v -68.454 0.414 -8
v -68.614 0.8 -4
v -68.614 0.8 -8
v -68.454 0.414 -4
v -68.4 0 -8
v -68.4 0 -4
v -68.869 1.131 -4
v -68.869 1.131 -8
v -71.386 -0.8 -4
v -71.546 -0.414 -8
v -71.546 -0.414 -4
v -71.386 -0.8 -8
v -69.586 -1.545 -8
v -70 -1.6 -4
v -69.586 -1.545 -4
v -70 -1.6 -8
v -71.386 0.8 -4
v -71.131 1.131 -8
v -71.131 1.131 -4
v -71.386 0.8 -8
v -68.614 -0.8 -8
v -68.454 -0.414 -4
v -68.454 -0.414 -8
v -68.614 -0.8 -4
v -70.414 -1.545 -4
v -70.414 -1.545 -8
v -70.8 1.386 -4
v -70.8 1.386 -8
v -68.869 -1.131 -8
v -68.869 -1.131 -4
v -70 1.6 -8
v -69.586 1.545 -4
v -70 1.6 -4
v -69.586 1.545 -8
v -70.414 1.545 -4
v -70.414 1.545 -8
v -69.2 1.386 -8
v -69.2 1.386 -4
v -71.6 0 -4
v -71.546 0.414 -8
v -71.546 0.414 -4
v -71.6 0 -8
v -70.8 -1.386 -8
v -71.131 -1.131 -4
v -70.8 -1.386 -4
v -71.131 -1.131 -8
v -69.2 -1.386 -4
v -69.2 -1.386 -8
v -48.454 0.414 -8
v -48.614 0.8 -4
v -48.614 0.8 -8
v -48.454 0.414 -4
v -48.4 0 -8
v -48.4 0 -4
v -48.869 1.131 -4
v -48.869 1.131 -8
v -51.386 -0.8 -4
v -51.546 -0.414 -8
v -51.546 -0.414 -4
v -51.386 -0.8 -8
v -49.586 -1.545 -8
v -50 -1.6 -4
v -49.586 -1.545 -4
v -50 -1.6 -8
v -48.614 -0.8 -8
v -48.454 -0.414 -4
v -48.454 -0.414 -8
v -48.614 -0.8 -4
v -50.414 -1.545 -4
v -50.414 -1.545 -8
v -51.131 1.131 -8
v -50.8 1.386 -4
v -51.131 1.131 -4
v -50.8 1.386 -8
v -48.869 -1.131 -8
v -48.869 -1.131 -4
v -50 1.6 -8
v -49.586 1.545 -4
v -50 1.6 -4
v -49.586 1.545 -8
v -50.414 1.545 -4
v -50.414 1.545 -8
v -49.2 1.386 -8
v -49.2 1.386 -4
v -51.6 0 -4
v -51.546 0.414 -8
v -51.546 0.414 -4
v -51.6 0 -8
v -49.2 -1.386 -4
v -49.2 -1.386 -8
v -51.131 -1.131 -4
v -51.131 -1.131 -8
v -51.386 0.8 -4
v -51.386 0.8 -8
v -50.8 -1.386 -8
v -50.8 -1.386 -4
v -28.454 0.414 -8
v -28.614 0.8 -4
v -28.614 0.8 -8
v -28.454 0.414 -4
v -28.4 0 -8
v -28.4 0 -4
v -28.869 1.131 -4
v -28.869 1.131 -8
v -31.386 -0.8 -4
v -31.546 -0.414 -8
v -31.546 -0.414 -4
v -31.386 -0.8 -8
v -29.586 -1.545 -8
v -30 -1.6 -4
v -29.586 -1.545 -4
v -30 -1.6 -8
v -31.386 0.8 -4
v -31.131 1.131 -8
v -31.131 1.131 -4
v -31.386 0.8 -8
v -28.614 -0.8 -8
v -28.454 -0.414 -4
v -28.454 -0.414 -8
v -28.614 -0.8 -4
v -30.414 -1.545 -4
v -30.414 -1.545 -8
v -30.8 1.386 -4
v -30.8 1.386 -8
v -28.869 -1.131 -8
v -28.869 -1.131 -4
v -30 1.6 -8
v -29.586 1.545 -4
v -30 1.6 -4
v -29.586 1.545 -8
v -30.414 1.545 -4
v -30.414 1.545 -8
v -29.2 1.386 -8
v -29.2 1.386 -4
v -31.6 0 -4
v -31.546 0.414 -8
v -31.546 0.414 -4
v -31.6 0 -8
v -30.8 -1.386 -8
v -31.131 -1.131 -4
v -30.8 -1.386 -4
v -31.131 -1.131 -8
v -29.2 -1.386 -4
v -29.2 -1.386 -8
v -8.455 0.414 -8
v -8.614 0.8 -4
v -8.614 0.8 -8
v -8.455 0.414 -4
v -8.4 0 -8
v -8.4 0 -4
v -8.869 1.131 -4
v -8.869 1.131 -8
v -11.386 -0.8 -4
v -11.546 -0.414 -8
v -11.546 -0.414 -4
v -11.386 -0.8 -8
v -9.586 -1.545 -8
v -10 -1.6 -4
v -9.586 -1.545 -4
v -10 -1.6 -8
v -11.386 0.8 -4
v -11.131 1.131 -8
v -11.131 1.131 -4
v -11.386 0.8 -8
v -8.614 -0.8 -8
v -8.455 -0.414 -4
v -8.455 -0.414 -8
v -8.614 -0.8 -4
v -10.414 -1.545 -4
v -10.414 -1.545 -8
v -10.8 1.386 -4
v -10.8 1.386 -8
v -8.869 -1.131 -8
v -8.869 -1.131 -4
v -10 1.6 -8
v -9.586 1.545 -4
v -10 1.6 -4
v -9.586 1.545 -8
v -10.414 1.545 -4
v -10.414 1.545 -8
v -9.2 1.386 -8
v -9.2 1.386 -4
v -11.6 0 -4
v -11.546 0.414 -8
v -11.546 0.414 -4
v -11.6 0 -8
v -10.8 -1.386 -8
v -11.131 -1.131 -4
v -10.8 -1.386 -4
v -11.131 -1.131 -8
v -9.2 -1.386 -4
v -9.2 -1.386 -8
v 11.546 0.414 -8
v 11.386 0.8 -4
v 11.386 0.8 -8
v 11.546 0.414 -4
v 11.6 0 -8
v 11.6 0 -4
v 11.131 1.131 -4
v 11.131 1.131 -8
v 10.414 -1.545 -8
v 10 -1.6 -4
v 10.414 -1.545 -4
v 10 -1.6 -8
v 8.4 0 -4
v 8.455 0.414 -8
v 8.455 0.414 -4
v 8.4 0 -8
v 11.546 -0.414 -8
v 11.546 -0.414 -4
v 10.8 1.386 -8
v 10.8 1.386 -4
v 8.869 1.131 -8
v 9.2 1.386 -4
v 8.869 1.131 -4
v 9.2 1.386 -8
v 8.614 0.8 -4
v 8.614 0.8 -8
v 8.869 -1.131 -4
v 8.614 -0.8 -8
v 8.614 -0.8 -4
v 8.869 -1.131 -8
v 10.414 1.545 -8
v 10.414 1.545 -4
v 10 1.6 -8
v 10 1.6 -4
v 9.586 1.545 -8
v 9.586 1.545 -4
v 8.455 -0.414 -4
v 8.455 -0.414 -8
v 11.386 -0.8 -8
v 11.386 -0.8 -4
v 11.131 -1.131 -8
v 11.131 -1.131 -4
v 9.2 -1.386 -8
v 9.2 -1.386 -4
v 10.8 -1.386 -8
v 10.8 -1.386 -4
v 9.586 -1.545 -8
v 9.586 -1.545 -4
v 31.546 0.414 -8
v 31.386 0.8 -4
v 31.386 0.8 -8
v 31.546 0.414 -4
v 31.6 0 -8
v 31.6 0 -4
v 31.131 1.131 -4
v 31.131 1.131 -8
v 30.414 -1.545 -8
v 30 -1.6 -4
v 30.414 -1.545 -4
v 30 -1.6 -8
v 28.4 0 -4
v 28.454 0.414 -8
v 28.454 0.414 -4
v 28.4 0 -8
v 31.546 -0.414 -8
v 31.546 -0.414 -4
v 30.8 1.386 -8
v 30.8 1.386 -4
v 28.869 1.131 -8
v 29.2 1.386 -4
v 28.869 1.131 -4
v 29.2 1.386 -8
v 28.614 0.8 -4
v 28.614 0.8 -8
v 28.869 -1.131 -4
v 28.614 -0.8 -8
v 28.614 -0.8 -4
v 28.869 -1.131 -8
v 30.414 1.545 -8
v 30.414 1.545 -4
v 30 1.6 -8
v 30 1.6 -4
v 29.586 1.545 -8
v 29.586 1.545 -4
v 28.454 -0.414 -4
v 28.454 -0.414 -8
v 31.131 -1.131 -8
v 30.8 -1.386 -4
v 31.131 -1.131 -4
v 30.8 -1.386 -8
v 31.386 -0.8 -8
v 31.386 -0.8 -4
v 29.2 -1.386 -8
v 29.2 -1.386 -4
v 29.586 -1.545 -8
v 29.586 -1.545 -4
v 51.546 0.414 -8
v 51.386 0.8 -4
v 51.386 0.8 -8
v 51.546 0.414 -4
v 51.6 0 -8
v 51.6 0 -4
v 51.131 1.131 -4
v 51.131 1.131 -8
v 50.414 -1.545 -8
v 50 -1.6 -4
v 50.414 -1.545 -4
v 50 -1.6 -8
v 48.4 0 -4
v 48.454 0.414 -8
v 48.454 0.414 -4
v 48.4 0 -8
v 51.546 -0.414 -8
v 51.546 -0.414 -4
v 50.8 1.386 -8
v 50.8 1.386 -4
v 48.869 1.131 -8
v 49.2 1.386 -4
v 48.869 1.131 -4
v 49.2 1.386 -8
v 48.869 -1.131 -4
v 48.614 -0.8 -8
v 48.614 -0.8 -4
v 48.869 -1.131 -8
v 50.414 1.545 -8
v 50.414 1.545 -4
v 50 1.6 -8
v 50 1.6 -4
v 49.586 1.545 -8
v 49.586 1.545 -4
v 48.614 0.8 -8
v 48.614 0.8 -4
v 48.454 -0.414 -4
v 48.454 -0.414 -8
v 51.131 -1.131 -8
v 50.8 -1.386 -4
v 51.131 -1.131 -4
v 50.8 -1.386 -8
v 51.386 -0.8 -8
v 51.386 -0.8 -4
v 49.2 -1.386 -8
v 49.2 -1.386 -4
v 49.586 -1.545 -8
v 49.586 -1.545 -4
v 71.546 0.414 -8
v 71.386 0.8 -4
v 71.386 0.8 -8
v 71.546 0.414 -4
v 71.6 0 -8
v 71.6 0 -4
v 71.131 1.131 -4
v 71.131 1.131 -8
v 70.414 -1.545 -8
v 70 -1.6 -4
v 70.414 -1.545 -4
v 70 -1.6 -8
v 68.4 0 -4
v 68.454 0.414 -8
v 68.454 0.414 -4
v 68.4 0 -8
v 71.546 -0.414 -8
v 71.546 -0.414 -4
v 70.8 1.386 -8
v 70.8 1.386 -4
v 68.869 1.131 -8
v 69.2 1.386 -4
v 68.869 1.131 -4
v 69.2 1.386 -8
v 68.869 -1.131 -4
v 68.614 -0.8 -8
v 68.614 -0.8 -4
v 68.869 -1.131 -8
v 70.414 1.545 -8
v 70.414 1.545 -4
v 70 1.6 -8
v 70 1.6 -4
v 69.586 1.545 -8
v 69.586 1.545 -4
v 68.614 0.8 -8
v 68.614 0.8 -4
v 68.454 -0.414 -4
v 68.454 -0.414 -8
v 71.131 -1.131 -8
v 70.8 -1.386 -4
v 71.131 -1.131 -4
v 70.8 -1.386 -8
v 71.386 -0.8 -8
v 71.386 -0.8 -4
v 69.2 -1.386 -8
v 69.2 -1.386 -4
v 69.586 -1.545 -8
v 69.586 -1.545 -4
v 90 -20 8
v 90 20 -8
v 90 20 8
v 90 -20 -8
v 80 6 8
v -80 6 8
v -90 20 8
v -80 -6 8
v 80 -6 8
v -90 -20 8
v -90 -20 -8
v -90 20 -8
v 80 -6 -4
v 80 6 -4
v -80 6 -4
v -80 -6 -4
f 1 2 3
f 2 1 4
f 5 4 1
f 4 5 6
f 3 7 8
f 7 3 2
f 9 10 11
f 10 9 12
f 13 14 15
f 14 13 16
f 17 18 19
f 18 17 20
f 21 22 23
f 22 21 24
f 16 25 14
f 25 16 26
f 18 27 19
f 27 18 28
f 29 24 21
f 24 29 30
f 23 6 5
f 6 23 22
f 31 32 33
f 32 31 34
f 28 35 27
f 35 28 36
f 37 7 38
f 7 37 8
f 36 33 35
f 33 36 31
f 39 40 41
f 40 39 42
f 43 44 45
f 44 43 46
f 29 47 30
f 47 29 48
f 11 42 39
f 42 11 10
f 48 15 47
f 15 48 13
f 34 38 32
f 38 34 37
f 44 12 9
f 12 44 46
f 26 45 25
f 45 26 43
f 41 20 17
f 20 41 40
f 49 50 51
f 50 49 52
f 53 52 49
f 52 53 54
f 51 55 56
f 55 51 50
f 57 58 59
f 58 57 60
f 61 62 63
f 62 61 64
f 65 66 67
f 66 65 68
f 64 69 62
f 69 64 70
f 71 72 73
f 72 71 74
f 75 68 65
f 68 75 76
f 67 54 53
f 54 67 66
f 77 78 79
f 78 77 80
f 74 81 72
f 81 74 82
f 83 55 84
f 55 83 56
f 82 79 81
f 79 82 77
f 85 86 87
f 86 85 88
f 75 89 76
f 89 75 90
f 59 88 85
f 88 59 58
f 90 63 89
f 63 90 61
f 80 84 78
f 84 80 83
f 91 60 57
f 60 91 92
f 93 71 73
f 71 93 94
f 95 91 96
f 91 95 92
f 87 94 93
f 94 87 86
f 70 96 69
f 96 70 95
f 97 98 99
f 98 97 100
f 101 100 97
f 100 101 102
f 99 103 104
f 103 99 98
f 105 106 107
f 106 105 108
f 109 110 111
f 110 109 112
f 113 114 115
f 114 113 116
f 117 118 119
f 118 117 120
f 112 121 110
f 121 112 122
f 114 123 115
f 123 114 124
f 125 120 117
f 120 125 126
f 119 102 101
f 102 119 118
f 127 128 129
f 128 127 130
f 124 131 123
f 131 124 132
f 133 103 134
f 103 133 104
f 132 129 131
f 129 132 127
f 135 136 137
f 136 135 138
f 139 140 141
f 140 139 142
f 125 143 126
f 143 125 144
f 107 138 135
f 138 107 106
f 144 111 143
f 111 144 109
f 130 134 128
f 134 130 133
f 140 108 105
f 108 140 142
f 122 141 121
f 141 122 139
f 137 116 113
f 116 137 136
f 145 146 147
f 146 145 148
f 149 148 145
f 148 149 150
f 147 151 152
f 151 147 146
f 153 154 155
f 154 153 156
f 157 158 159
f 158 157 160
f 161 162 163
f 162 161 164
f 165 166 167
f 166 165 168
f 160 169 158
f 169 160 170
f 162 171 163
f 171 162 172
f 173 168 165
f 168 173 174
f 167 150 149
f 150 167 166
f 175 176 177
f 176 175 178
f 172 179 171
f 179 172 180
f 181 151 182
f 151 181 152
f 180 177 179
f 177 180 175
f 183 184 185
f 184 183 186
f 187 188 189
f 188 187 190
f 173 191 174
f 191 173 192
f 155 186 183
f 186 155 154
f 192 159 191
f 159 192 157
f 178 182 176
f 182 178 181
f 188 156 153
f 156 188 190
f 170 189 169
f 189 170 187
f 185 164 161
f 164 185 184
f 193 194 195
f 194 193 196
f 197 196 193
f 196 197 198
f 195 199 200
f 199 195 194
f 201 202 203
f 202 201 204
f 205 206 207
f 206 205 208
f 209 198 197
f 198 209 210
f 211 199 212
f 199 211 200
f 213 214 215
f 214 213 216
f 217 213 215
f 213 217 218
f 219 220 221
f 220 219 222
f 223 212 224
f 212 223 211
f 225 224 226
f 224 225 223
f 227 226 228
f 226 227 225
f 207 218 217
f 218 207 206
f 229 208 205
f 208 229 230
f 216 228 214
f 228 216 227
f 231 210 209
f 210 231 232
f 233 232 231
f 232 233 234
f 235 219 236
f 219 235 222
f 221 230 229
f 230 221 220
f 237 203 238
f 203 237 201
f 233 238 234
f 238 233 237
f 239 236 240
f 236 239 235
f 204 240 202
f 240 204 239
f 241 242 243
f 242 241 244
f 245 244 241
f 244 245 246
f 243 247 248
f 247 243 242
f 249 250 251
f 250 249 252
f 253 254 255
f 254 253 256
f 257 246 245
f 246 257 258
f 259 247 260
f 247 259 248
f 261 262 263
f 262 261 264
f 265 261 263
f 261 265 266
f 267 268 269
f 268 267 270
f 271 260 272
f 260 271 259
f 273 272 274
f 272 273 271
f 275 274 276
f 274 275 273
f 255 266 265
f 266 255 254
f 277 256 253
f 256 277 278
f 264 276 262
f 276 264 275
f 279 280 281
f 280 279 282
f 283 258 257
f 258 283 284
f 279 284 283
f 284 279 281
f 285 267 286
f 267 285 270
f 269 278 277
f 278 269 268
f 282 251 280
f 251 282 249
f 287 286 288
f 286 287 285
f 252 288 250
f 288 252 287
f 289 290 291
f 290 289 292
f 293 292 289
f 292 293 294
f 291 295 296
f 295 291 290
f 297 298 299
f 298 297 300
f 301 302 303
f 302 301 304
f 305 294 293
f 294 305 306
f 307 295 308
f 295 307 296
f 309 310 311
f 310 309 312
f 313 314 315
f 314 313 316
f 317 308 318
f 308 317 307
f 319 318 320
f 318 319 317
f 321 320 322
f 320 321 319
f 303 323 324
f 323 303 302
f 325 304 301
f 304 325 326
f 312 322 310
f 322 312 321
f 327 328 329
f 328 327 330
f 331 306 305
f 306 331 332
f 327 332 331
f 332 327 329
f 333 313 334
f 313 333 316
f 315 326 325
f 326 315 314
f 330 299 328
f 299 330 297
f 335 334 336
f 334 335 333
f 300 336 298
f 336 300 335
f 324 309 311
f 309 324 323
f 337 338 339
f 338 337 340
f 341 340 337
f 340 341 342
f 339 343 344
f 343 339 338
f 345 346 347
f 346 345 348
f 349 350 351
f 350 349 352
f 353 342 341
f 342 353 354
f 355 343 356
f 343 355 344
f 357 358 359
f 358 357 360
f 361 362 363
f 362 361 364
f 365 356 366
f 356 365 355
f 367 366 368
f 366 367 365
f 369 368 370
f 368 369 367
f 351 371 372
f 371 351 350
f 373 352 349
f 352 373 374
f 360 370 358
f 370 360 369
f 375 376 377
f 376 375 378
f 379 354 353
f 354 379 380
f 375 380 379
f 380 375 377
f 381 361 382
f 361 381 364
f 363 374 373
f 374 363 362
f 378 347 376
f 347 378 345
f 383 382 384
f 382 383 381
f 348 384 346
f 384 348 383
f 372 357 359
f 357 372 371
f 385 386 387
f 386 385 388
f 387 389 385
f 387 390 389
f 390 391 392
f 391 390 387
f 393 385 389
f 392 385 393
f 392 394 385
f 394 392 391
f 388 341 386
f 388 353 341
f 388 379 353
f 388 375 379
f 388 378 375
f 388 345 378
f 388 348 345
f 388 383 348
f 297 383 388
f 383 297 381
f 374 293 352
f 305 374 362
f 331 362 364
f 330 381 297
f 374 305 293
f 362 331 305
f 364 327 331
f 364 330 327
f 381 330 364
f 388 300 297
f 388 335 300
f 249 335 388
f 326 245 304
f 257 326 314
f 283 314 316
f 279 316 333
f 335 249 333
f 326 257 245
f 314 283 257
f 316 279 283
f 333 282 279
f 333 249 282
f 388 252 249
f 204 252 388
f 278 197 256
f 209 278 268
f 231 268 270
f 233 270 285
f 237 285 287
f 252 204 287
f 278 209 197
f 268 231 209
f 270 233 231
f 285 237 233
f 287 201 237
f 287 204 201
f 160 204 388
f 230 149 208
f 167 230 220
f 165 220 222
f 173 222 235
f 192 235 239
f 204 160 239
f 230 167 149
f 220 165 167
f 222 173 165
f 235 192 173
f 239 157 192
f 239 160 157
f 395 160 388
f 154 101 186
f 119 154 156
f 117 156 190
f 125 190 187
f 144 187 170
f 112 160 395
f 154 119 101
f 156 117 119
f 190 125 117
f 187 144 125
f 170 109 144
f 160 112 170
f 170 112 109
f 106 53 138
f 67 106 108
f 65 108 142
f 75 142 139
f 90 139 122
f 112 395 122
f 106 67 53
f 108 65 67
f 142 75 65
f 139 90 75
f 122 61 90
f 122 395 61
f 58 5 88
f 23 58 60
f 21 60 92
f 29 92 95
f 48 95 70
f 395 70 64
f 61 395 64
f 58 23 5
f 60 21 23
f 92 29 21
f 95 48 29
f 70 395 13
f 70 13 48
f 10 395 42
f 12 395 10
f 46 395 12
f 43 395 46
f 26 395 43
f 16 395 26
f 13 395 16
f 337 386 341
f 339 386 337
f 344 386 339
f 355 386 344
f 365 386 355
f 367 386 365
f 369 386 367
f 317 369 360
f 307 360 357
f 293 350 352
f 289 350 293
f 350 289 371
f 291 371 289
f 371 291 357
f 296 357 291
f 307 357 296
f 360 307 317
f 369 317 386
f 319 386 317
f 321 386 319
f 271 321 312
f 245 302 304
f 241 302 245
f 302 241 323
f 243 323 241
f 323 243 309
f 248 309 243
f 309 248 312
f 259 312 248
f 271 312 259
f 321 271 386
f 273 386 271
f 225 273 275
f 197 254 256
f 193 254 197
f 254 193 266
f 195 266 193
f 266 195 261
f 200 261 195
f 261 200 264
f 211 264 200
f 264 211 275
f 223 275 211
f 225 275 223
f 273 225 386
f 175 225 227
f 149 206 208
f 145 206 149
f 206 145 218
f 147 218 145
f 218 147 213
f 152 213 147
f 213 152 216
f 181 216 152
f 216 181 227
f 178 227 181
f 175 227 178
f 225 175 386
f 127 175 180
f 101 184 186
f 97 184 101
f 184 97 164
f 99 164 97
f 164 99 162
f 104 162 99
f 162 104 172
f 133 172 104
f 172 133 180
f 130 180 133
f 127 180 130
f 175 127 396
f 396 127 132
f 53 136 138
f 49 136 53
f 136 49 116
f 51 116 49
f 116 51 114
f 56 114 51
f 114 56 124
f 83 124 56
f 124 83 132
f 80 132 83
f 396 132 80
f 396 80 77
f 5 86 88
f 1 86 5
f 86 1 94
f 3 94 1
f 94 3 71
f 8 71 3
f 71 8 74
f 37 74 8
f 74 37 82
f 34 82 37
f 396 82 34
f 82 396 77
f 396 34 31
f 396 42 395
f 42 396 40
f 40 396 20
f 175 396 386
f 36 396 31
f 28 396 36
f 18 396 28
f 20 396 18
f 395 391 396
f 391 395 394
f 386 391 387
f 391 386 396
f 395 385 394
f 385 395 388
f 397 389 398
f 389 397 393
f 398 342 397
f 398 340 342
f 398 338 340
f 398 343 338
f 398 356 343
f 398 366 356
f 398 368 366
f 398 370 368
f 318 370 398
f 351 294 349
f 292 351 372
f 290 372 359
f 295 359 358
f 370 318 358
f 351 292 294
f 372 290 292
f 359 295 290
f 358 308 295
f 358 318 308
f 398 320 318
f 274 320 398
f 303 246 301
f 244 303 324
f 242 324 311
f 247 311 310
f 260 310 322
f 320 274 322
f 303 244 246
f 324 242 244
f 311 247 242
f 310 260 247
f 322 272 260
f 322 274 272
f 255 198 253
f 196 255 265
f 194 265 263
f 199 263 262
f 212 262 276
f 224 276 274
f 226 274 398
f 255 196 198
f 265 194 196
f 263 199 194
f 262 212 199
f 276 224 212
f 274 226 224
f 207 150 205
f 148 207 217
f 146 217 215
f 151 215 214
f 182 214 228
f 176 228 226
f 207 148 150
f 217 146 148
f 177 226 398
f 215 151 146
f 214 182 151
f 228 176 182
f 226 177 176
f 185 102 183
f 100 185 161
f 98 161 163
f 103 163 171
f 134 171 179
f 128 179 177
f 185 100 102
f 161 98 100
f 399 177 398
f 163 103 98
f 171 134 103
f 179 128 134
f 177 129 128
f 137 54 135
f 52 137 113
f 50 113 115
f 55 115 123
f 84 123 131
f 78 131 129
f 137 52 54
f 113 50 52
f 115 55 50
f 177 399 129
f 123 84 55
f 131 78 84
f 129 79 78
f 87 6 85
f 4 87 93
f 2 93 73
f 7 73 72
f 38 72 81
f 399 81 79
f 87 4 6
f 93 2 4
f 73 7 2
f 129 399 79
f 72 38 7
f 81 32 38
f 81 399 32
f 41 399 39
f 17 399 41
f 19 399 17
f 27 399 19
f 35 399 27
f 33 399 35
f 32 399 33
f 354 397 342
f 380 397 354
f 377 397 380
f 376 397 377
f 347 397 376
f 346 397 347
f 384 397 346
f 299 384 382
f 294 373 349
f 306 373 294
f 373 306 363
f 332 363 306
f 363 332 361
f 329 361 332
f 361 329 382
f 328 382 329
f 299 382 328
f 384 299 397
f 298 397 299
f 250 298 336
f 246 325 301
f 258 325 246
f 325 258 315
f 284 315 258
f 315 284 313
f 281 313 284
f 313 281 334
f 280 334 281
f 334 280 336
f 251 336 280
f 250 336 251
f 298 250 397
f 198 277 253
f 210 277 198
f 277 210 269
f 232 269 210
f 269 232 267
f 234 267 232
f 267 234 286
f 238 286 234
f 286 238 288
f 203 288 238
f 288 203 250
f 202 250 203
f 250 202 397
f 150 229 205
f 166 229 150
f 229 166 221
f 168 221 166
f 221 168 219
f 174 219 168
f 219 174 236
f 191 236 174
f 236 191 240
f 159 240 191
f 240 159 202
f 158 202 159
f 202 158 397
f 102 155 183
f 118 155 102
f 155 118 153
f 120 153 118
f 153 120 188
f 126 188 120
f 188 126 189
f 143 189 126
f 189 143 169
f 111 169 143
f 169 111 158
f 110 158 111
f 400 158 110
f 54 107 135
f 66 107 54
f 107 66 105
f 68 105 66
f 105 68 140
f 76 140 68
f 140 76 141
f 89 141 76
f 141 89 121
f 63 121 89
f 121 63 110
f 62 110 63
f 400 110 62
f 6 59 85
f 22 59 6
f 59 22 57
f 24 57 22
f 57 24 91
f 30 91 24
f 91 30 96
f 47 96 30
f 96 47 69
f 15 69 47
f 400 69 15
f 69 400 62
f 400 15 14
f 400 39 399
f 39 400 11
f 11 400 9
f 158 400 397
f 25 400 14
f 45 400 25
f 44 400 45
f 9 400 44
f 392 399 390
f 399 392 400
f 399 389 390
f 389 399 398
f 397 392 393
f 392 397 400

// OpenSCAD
// ISM-FJ-TOOL-040 — Drill/rivet edge fixture (study mm). Issue #106.
// Clamps skin/longeron stack; bushing holes at rivet pitch.

pitch = 20;
holes = 8;
bush_id = 3.2;
bush_od = 8;
clamp_w = 40;
clamp_l = pitch * (holes - 1) + 40;
clamp_t = 16;

module drill_rivet_fixture() {
    difference() {
        cube([clamp_l, clamp_w, clamp_t], center=true);
        // work slot
        translate([0, 0, clamp_t/4])
            cube([clamp_l - 20, 12, clamp_t], center=true);
        // bushing holes
        for (i=[0:holes-1]) {
            x = -pitch*(holes-1)/2 + i*pitch;
            translate([x, 0, 0])
                cylinder(h=clamp_t+2, d=bush_id, center=true, $fn=24);
            translate([x, 0, clamp_t/2 - 2])
                cylinder(h=4, d=bush_od, center=true, $fn=24);
        }
    }
}

drill_rivet_fixture();
